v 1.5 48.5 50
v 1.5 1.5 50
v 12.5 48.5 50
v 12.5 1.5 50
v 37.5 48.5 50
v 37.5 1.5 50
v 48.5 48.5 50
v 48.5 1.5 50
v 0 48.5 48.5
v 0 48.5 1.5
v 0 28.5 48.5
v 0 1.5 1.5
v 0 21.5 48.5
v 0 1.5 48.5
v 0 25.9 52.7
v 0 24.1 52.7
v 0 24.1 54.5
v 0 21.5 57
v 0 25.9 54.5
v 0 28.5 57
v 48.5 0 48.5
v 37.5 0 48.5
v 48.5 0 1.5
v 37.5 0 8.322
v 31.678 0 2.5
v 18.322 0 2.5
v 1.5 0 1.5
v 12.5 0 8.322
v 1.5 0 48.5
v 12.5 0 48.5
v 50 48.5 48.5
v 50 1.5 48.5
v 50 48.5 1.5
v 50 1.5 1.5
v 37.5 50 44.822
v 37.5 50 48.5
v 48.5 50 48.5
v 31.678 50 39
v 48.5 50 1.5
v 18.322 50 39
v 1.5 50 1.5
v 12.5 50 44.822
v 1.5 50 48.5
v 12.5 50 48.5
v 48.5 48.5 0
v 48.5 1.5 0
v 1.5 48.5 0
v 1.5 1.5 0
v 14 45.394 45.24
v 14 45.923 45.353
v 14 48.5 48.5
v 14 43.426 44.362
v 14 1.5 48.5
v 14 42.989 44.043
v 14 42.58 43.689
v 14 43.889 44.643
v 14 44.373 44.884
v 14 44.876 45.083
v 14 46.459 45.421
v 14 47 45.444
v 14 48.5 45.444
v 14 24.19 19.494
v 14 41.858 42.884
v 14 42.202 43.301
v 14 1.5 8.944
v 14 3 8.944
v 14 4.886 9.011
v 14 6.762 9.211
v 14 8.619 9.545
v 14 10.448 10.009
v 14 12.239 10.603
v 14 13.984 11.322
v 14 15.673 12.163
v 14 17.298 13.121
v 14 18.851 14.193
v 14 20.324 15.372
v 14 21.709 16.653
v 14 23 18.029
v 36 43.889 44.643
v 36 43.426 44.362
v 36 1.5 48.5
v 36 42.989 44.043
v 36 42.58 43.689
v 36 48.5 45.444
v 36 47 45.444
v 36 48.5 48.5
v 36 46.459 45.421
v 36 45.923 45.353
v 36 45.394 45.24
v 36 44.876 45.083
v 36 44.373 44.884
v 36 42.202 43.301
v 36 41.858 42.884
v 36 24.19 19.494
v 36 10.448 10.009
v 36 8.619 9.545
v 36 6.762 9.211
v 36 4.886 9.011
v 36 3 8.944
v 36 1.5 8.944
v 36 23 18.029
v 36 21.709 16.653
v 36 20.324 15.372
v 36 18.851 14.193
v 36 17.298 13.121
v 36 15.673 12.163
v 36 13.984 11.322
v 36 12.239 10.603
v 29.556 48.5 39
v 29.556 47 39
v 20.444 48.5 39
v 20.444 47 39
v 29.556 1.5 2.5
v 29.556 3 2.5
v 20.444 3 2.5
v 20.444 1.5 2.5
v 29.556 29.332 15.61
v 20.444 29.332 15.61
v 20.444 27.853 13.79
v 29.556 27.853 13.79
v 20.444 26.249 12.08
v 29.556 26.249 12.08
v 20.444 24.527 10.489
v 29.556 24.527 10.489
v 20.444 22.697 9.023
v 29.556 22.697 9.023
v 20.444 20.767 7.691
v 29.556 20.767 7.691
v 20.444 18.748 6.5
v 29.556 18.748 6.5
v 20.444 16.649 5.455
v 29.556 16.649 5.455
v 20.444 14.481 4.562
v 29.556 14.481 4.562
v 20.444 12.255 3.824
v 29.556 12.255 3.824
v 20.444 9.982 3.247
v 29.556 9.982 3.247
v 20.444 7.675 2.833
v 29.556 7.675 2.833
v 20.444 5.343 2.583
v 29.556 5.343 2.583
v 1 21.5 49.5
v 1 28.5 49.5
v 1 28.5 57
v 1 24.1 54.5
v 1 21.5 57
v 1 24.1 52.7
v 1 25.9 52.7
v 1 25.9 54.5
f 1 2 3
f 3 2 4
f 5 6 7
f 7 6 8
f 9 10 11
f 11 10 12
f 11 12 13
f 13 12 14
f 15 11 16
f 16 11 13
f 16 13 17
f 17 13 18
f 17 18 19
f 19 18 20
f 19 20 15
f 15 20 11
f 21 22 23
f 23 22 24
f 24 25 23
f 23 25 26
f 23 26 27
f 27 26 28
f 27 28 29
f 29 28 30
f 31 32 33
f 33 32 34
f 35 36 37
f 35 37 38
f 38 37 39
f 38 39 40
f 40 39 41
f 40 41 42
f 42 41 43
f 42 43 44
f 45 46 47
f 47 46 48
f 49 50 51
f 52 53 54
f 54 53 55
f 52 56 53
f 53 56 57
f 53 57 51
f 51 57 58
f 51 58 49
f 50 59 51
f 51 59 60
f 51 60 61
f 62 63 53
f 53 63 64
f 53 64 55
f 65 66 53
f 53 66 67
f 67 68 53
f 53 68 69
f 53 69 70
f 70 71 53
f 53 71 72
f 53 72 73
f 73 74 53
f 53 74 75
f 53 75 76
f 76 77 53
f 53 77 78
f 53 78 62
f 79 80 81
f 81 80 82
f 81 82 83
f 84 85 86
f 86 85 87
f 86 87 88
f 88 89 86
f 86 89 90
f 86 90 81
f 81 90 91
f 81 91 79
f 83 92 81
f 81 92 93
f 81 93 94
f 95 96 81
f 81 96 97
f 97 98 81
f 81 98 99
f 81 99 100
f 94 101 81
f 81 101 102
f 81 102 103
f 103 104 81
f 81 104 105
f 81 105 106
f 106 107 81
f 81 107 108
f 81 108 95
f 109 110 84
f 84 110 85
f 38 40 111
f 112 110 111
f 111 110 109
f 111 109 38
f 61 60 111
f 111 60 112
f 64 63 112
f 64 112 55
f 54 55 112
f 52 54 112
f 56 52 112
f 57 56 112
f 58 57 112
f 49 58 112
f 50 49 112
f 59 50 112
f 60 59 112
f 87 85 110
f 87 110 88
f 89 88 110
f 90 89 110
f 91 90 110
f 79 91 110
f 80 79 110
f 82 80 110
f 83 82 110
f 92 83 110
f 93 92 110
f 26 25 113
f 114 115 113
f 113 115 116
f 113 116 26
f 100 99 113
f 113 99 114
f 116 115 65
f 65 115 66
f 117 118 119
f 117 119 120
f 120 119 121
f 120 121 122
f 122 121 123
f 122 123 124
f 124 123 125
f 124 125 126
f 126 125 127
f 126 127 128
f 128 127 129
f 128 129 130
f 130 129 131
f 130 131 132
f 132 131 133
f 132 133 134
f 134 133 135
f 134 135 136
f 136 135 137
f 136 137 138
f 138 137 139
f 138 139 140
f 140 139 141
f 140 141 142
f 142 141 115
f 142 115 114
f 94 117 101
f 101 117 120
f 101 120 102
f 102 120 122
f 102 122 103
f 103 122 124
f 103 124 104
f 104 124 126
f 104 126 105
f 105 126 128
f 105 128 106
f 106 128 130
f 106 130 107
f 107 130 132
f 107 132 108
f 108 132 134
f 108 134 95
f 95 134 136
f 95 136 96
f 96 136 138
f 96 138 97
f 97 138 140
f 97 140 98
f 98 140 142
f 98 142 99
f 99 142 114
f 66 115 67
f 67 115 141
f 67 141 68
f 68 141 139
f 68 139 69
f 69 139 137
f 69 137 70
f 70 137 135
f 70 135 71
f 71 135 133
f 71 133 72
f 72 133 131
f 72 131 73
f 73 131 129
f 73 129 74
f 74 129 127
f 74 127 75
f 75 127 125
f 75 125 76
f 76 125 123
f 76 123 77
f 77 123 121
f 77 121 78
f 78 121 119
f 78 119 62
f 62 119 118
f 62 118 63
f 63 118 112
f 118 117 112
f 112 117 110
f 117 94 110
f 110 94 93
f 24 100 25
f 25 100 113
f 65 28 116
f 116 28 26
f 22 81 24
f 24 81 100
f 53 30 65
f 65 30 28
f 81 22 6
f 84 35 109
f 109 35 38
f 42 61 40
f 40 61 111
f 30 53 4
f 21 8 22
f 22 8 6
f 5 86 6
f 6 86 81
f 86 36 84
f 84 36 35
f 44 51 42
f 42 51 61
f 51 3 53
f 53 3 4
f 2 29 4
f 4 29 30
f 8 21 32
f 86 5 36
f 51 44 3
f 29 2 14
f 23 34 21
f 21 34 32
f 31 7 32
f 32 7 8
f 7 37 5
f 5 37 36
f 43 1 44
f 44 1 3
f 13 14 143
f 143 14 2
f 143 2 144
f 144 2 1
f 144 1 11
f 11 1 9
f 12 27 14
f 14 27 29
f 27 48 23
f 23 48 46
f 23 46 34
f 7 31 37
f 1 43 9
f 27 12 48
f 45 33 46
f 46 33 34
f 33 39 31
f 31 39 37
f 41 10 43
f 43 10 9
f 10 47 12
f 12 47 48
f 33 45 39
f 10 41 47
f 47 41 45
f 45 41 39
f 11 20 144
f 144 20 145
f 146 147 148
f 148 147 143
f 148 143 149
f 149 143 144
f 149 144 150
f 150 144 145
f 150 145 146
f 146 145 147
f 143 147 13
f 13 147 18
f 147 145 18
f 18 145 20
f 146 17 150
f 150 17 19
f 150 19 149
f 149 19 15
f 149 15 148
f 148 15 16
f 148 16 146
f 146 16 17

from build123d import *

# Parameters (mm, degrees)
SKETCH1_W                = 50
SKETCH1_H                = 50
BOSS_EXTRUDE1_DEPTH      = 50
CUT_SWEEP3_START         = 47
CUT_SWEEP3_DEPTH         = 3
CUT_SWEEP3_2_ANGLE       = 52.934263
SKETCH12_W               = 22
SKETCH12_H               = 36
CUT_EXTRUDE6_DEPTH       = 11
SKETCH13_W               = 22
SKETCH13_H               = 20.943650814
CUT_EXTRUDE7_DEPTH       = 20
SKETCH14_W               = 22
SKETCH14_H               = 7.504472325
CUT_EXTRUDE8_DEPTH       = 12
CHAMFER1_SIZE            = 1.5
BOSS_EXTRUDE2_DEPTH      = 7
BOSS_EXTRUDE2_DEPTH_BACK = 10
SKETCH15_W               = 1
SKETCH15_H               = 7
SKETCH16_W               = 1.8
SKETCH16_H               = 1.8
CUT_EXTRUDE9_DEPTH       = 7


with BuildPart() as part:
    # Sketch1 → Boss-Extrude1 (new body)
    with BuildSketch(Plane.XY):
        with Locations((25, 25)):
            Rectangle(SKETCH1_W, SKETCH1_H)
    extrude(amount=BOSS_EXTRUDE1_DEPTH)

    # Cut-Sweep3: read off the stored shape, not the designer's step
    # Cut-Sweep3 outline → Cut-Sweep3 (cut)
    with BuildSketch(Plane(origin=(0, 0, 0), x_dir=(1, 0, 0), z_dir=(0, 1, 0)).offset(CUT_SWEEP3_START)):
        Polygon((20.443650814, -39), (14, -45.443650814), (14, -50), (36, -50), (36, -45.443650814), (29.556349186, -39), align=None)
    extrude(amount=CUT_SWEEP3_DEPTH, mode=Mode.SUBTRACT)

    # Cut-Sweep3 2 outline → Cut-Sweep3 2 (revolve, cut)
    with BuildSketch(Plane(origin=(0, 47, 39), x_dir=(0, 0, 1), z_dir=(0, 1, 0))):
        Polygon((6.443650814, 14), (15.556349186, 14), (18.250266522, 16.693917336), (18.250266522, 33.306082664), (15.556349091, 36.000000095), (6.443650814, 36), (0, 29.556349186), (0, 20.443650814), align=None)
    revolve(axis=Axis((0, 47, 39), (1, 0, 0)), revolution_arc=CUT_SWEEP3_2_ANGLE, mode=Mode.SUBTRACT)

    # Cut-Sweep4: sweep along a path in Sketch9
    with BuildLine(Plane(origin=(25, 0, 0), x_dir=(0, 0, -1), z_dir=(1, 0, 0))) as cut_sweep4_path:
        Line((-13.5, 0), (-13.5, 3))
        ThreePointArc((-13.5, 3), (-15.805815997, 12.805055658), (-22.239919677, 20.554779117))
        Line((-22.239919677, 20.554779117), (-45.630040161, 38.222610442))
    # Sketch5<2> → Cut-Sweep4 (sweep, cut)
    with BuildSketch(Plane(origin=(25, 38.222610442, 45.630040161), x_dir=(-1, 0, 0), z_dir=(0, -0.6027309237648077, -0.7979445052994735))):
        Polygon((4.556349186, 11), (-4.556349186, 11), (-11, 4.556349186), (-11, -4.556349186), (-4.556349186, -11), (4.556349186, -11), (11, -4.556349186), (11, 4.556349186), align=None)
    sweep(path=cut_sweep4_path.line, mode=Mode.SUBTRACT)

    # Sketch12 → Cut-Extrude6 (cut)
    with BuildSketch(Plane.XY.offset(50)):
        with Locations((25, 18)):
            Rectangle(SKETCH12_W, SKETCH12_H)
    extrude(amount=-CUT_EXTRUDE6_DEPTH, mode=Mode.SUBTRACT)

    # Sketch13 → Cut-Extrude7 (cut)
    with BuildSketch(Plane.XZ):
        with Locations((25, 28.528174593)):
            Rectangle(SKETCH13_W, SKETCH13_H)
    extrude(amount=-CUT_EXTRUDE7_DEPTH, mode=Mode.SUBTRACT)

    # Sketch14 → Cut-Extrude8 (cut)
    with BuildSketch(Plane.XY.offset(39)):
        with Locations((25, 23.752236163)):
            Rectangle(SKETCH14_W, SKETCH14_H)
    extrude(amount=-CUT_EXTRUDE8_DEPTH, mode=Mode.SUBTRACT)

    # Chamfer1
    chamfer1_edges = [part.edges().sort_by_distance(p)[0] for p in [
        (50, 25, 50),
        (43, 0, 50),
        (43, 50, 50),
        (7, 50, 50),
        (14, 25, 50),
        (36, 18, 50),
        (14, 50, 47.721825407),
        (36, 50, 47.721825407),
        (32.778174593, 50, 42.221825407),
        (17.221825407, 50, 42.221825407),
        (0, 25, 50),
        (25, 50, 0),
        (50, 25, 0),
        (25, 0, 0),
        (0, 25, 0),
        (17.221825407, 0, 5.721825407),
        (32.778174593, 0, 5.721825407),
        (36, 0, 29.471825407),
        (14, 0, 29.471825407),
        (7, 0, 50),
        (0, 50, 25),
        (50, 50, 25),
        (50, 0, 25),
        (0, 0, 25),
    ]]
    chamfer(chamfer1_edges, length=CHAMFER1_SIZE)

    # Sketch15 → Boss-Extrude2 (add, two sides: drawn at the far end of the back side and taken through both)
    with BuildSketch(Plane.XY.offset(50).offset(-BOSS_EXTRUDE2_DEPTH_BACK)):
        with Locations((0.5, 25)):
            Rectangle(SKETCH15_W, SKETCH15_H)
    extrude(amount=BOSS_EXTRUDE2_DEPTH + BOSS_EXTRUDE2_DEPTH_BACK)

    # Sketch16 → Cut-Extrude9 (cut)
    with BuildSketch(Plane(origin=(1, 0, 0), x_dir=(0, 0, -1), z_dir=(1, 0, 0))):
        with Locations((-53.6, 25)):
            Rectangle(SKETCH16_W, SKETCH16_H)
    extrude(amount=-CUT_EXTRUDE9_DEPTH, mode=Mode.SUBTRACT)


solid = part.part
